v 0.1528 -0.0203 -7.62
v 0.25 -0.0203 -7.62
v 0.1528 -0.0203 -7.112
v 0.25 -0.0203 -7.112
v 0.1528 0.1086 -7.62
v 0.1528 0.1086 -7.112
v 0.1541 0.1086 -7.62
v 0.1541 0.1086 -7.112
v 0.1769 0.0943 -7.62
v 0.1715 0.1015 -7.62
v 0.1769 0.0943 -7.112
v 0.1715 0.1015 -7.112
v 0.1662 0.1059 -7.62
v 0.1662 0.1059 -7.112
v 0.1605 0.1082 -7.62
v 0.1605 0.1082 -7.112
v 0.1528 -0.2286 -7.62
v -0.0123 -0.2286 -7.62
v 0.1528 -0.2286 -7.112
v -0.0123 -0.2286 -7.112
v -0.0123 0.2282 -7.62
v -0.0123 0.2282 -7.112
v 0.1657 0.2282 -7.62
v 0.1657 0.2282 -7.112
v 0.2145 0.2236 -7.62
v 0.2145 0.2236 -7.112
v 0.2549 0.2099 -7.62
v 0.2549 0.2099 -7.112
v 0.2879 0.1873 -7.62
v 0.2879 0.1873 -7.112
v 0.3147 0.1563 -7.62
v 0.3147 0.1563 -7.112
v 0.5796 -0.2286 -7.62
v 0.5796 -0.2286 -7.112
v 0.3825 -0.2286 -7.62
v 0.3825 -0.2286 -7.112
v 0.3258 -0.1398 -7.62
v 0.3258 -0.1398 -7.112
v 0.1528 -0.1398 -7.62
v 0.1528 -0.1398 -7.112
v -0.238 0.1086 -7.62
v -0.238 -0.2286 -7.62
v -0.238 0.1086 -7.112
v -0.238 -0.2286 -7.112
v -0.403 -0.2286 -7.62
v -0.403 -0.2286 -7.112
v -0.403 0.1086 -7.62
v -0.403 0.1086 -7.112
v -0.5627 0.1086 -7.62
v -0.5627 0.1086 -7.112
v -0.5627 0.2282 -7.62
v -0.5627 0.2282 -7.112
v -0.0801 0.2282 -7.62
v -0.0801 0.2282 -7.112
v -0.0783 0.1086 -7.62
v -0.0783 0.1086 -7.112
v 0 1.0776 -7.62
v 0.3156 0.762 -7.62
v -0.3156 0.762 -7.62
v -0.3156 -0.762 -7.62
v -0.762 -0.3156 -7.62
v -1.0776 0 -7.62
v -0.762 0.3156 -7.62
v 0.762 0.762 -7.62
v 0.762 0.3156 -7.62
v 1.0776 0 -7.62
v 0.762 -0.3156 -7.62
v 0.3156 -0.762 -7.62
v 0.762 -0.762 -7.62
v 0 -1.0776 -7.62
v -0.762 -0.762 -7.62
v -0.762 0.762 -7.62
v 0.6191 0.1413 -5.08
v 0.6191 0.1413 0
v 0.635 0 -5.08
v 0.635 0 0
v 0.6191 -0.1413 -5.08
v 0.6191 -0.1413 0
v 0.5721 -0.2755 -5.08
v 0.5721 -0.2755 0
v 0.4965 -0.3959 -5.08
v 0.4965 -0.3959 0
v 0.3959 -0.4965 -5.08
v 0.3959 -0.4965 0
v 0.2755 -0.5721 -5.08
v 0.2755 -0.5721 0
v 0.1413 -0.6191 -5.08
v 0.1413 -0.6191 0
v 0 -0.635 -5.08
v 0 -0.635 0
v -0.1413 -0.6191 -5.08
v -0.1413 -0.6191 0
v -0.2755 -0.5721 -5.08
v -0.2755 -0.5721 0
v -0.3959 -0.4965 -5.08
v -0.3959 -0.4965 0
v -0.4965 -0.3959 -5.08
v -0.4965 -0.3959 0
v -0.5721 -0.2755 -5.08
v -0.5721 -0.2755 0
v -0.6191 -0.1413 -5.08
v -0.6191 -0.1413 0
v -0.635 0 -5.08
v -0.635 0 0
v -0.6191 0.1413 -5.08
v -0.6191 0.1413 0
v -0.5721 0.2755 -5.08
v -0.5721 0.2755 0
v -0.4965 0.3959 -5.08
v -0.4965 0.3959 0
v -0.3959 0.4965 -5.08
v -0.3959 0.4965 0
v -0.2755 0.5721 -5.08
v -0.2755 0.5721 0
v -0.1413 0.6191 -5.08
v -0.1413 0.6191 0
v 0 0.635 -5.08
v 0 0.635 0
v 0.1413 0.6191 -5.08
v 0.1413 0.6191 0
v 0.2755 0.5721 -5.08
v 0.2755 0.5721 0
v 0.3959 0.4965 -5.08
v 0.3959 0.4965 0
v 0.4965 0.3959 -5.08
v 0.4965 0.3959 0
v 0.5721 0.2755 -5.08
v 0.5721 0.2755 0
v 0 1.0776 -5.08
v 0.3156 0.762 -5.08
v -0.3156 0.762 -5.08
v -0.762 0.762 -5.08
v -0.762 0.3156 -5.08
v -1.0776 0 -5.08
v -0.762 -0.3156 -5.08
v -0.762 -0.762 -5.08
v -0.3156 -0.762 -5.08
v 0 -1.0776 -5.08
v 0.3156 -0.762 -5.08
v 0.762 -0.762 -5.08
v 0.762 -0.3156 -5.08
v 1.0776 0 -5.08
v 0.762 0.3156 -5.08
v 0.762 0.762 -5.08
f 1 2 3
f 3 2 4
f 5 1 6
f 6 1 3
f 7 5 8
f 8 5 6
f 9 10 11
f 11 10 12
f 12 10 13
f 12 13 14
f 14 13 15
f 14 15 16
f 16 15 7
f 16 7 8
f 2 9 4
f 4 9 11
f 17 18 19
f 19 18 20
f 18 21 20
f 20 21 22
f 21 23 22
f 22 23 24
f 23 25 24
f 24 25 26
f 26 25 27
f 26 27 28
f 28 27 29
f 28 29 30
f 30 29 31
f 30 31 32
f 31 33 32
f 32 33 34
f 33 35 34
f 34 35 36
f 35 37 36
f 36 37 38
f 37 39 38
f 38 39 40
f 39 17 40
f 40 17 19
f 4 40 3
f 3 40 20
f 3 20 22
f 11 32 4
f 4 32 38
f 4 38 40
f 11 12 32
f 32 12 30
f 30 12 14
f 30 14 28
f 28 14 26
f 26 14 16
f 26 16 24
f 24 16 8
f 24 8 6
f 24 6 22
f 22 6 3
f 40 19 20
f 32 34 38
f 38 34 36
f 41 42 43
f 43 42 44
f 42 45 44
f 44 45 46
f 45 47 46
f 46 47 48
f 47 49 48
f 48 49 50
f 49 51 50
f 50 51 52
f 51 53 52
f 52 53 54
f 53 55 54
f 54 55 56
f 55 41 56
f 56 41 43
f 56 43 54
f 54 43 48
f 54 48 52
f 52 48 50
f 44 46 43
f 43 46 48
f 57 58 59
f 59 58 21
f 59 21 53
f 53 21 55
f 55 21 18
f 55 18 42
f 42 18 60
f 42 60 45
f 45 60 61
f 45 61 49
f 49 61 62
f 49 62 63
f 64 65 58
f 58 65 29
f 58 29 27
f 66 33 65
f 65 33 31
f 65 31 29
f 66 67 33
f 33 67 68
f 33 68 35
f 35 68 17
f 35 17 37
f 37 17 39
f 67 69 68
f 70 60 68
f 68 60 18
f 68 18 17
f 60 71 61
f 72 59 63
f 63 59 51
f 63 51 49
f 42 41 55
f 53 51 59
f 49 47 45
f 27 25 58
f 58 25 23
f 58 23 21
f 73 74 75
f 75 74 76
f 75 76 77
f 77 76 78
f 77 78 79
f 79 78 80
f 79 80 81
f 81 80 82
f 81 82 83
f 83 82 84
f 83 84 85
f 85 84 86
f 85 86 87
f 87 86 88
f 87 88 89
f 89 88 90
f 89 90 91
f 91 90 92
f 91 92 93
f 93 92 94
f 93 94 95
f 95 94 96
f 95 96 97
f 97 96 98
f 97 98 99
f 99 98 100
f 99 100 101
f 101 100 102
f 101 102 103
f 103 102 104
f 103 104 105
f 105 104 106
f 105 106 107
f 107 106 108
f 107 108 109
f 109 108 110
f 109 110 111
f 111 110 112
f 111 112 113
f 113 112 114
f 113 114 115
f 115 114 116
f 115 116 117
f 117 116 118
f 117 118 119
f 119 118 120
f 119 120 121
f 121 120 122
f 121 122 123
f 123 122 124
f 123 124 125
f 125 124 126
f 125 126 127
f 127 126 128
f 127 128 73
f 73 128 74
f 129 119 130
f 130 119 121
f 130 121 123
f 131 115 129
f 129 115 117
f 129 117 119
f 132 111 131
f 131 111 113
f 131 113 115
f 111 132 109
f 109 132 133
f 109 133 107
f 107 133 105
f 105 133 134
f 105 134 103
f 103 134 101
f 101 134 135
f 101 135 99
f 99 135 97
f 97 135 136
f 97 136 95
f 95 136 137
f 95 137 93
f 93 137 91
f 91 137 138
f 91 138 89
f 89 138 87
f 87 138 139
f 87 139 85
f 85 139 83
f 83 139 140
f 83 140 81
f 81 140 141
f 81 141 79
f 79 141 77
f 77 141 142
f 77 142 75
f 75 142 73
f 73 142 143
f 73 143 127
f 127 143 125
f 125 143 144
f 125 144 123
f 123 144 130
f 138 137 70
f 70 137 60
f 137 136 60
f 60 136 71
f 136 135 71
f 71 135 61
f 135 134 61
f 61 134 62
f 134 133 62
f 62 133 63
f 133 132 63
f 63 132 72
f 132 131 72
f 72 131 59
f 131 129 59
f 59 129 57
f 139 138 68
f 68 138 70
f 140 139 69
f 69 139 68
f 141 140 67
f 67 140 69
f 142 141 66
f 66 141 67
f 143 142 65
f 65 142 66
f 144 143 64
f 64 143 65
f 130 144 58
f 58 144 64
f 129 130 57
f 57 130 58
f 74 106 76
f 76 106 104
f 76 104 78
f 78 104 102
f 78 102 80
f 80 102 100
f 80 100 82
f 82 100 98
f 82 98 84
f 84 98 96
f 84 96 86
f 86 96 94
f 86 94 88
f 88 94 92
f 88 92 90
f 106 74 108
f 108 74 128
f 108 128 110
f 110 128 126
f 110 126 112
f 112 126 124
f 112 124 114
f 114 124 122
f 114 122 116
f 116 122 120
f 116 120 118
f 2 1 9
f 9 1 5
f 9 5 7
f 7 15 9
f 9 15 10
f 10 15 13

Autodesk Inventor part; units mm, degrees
ref_plane "YZ Plane" through (0, 0, 0) normal (1, 0, 0) x (0, 1, 0)
ref_plane "XZ Plane" through (0, 0, 0) normal (0, 1, 0) x (-1, 0, 0)
ref_plane "XY Plane" through (0, 0, 0) normal (0, 0, 1) x (1, 0, 0)
sketch "Sketch1" plane through (0, 0, 0) normal (0, 0, 1) x (1, 0, 0)
  circle A0 centre (0, 0) radius 0.762
  line L0 (-1.0776, 0) -> (0, 1.0776)
  line L1 (0, 1.0776) -> (1.0776, 0)
  line L2 (1.0776, 0) -> (0, -1.0776)
  line L3 (0, -1.0776) -> (-1.0776, 0)
  line L4 (-0.762, 0.762) -> (0.762, 0.762)
  line L5 (0.762, 0.762) -> (0.762, -0.762)
  line L6 (0.762, -0.762) -> (-0.762, -0.762)
  line L7 (-0.762, -0.762) -> (-0.762, 0.762)
  point P0 (0, 3.175)
  point P1 (-3.175, 0)
  point P2 (-0.898, 0.898)
  point P3 (-0.6286, -0.0898)
  point P4 (-0.5388, -0.5388)
  point P5 (0.5388, -0.5388)
  point P6 (0.3287, 1.2267)
  point P7 (3.7343, 0.7559)
  point P8 (0.5388, 0.5388)
  point P9 (-0.5388, 0.5388)
  point P10 (0, 0.762)
  point P11 (-0.762, 0)
  point P12 (0.3156, 0.762)
  point P13 (-0.3156, 0.762)
  point P14 (-0.762, 0.3156)
  point P15 (-0.762, -0.3156)
  point P16 (-0.3156, -0.762)
  point P17 (0.3156, -0.762)
  point P18 (0.762, -0.3156)
  point P19 (0.762, 0.3156)
  dimension "d0" = 1.524
  dimension "d1" = 1.524
  dimension "d2" = 1.524
  dimension "d3" = 0
  dimension "d12" = 0
  dimension "d13" = 0
  dimension "d16" = 1.524
  dimension "d17" = 1.524
  dimension "d18" = 0
  dimension "d19" = 0
extrude "Extrusion3" add sketch "Sketch1" against normal blind 7.62
sketch "Sketch6" plane through (0, 0, 0) normal (0, 0, 1) x (1, 0, 0)
  line L0 (-0.762, 0.3156) -> (-0.762, 0.762) projected
  circle A0 centre (0, 0) radius 1.0776
  line L1 (-0.762, 0.762) -> (-0.3156, 0.762) projected
  circle A1 centre (0, 0) radius 0.635
  dimension "d33" = 1.27
extrude "Extrusion6" cut sketch "Sketch6" against normal blind 5.08
sketch "Sketch7" plane through (0, 0, -7.62) normal (0, 0, -1) x (-1, 0, 0)
  line L0 (-1.6188, 0.635) -> (1.6188, 0.635) construction
  line L1 (1.6188, 0.635) -> (1.6188, -0.635) construction
  line L2 (1.6188, -0.635) -> (-1.6188, -0.635) construction
  line L3 (-1.6188, -0.635) -> (-1.6188, 0.635) construction
  line L4 (-0.1528, -0.1398) -> (-0.1528, -0.2286)
  line L5 (-0.1528, -0.2286) -> (0.0123, -0.2286)
  line L6 (0.0123, -0.2286) -> (0.0123, 0.2282)
  line L7 (0.0123, 0.2282) -> (-0.1657, 0.2282)
  spline S0 degree 2 poles (-0.1657, 0.2282) (-0.2188, 0.2282) (-0.291, 0.1916) (-0.3147, 0.1563) knots 0 0 0 1 2 2 2
  line L8 (-0.3147, 0.1563) -> (-0.5796, -0.2286)
  line L9 (-0.5796, -0.2286) -> (-0.3825, -0.2286)
  line L10 (-0.3825, -0.2286) -> (-0.3258, -0.1398)
  line L11 (-0.3258, -0.1398) -> (-0.1528, -0.1398)
  line L12 (-0.25, -0.0203) -> (-0.1769, 0.0943)
  spline S1 degree 2 poles (-0.1769, 0.0943) (-0.1715, 0.1028) (-0.1608, 0.1091) (-0.1541, 0.1086) knots 0 0 0 1 2 2 2
  line L13 (-0.1541, 0.1086) -> (-0.1528, 0.1086)
  line L14 (-0.1528, 0.1086) -> (-0.1528, -0.0203)
  line L15 (-0.1528, -0.0203) -> (-0.25, -0.0203)
  line L16 (0.0783, 0.1086) -> (0.238, 0.1086)
  line L17 (0.238, 0.1086) -> (0.238, -0.2286)
  line L18 (0.238, -0.2286) -> (0.403, -0.2286)
  line L19 (0.403, -0.2286) -> (0.403, 0.1086)
  line L20 (0.403, 0.1086) -> (0.5627, 0.1086)
  line L21 (0.5627, 0.1086) -> (0.5627, 0.2282)
  line L22 (0.5627, 0.2282) -> (0.0801, 0.2282)
  line L23 (0.0801, 0.2282) -> (0.0783, 0.1086)
  point P0 (0, 0)
  point P1 (0, 0.635)
  point P2 (-1.6188, 0)
  dimension "d34" = 0
  dimension "d35" = 0
extrude "Extrusion7" cut sketch "Sketch7" against normal blind 0.508
properties part number "screwhead"
